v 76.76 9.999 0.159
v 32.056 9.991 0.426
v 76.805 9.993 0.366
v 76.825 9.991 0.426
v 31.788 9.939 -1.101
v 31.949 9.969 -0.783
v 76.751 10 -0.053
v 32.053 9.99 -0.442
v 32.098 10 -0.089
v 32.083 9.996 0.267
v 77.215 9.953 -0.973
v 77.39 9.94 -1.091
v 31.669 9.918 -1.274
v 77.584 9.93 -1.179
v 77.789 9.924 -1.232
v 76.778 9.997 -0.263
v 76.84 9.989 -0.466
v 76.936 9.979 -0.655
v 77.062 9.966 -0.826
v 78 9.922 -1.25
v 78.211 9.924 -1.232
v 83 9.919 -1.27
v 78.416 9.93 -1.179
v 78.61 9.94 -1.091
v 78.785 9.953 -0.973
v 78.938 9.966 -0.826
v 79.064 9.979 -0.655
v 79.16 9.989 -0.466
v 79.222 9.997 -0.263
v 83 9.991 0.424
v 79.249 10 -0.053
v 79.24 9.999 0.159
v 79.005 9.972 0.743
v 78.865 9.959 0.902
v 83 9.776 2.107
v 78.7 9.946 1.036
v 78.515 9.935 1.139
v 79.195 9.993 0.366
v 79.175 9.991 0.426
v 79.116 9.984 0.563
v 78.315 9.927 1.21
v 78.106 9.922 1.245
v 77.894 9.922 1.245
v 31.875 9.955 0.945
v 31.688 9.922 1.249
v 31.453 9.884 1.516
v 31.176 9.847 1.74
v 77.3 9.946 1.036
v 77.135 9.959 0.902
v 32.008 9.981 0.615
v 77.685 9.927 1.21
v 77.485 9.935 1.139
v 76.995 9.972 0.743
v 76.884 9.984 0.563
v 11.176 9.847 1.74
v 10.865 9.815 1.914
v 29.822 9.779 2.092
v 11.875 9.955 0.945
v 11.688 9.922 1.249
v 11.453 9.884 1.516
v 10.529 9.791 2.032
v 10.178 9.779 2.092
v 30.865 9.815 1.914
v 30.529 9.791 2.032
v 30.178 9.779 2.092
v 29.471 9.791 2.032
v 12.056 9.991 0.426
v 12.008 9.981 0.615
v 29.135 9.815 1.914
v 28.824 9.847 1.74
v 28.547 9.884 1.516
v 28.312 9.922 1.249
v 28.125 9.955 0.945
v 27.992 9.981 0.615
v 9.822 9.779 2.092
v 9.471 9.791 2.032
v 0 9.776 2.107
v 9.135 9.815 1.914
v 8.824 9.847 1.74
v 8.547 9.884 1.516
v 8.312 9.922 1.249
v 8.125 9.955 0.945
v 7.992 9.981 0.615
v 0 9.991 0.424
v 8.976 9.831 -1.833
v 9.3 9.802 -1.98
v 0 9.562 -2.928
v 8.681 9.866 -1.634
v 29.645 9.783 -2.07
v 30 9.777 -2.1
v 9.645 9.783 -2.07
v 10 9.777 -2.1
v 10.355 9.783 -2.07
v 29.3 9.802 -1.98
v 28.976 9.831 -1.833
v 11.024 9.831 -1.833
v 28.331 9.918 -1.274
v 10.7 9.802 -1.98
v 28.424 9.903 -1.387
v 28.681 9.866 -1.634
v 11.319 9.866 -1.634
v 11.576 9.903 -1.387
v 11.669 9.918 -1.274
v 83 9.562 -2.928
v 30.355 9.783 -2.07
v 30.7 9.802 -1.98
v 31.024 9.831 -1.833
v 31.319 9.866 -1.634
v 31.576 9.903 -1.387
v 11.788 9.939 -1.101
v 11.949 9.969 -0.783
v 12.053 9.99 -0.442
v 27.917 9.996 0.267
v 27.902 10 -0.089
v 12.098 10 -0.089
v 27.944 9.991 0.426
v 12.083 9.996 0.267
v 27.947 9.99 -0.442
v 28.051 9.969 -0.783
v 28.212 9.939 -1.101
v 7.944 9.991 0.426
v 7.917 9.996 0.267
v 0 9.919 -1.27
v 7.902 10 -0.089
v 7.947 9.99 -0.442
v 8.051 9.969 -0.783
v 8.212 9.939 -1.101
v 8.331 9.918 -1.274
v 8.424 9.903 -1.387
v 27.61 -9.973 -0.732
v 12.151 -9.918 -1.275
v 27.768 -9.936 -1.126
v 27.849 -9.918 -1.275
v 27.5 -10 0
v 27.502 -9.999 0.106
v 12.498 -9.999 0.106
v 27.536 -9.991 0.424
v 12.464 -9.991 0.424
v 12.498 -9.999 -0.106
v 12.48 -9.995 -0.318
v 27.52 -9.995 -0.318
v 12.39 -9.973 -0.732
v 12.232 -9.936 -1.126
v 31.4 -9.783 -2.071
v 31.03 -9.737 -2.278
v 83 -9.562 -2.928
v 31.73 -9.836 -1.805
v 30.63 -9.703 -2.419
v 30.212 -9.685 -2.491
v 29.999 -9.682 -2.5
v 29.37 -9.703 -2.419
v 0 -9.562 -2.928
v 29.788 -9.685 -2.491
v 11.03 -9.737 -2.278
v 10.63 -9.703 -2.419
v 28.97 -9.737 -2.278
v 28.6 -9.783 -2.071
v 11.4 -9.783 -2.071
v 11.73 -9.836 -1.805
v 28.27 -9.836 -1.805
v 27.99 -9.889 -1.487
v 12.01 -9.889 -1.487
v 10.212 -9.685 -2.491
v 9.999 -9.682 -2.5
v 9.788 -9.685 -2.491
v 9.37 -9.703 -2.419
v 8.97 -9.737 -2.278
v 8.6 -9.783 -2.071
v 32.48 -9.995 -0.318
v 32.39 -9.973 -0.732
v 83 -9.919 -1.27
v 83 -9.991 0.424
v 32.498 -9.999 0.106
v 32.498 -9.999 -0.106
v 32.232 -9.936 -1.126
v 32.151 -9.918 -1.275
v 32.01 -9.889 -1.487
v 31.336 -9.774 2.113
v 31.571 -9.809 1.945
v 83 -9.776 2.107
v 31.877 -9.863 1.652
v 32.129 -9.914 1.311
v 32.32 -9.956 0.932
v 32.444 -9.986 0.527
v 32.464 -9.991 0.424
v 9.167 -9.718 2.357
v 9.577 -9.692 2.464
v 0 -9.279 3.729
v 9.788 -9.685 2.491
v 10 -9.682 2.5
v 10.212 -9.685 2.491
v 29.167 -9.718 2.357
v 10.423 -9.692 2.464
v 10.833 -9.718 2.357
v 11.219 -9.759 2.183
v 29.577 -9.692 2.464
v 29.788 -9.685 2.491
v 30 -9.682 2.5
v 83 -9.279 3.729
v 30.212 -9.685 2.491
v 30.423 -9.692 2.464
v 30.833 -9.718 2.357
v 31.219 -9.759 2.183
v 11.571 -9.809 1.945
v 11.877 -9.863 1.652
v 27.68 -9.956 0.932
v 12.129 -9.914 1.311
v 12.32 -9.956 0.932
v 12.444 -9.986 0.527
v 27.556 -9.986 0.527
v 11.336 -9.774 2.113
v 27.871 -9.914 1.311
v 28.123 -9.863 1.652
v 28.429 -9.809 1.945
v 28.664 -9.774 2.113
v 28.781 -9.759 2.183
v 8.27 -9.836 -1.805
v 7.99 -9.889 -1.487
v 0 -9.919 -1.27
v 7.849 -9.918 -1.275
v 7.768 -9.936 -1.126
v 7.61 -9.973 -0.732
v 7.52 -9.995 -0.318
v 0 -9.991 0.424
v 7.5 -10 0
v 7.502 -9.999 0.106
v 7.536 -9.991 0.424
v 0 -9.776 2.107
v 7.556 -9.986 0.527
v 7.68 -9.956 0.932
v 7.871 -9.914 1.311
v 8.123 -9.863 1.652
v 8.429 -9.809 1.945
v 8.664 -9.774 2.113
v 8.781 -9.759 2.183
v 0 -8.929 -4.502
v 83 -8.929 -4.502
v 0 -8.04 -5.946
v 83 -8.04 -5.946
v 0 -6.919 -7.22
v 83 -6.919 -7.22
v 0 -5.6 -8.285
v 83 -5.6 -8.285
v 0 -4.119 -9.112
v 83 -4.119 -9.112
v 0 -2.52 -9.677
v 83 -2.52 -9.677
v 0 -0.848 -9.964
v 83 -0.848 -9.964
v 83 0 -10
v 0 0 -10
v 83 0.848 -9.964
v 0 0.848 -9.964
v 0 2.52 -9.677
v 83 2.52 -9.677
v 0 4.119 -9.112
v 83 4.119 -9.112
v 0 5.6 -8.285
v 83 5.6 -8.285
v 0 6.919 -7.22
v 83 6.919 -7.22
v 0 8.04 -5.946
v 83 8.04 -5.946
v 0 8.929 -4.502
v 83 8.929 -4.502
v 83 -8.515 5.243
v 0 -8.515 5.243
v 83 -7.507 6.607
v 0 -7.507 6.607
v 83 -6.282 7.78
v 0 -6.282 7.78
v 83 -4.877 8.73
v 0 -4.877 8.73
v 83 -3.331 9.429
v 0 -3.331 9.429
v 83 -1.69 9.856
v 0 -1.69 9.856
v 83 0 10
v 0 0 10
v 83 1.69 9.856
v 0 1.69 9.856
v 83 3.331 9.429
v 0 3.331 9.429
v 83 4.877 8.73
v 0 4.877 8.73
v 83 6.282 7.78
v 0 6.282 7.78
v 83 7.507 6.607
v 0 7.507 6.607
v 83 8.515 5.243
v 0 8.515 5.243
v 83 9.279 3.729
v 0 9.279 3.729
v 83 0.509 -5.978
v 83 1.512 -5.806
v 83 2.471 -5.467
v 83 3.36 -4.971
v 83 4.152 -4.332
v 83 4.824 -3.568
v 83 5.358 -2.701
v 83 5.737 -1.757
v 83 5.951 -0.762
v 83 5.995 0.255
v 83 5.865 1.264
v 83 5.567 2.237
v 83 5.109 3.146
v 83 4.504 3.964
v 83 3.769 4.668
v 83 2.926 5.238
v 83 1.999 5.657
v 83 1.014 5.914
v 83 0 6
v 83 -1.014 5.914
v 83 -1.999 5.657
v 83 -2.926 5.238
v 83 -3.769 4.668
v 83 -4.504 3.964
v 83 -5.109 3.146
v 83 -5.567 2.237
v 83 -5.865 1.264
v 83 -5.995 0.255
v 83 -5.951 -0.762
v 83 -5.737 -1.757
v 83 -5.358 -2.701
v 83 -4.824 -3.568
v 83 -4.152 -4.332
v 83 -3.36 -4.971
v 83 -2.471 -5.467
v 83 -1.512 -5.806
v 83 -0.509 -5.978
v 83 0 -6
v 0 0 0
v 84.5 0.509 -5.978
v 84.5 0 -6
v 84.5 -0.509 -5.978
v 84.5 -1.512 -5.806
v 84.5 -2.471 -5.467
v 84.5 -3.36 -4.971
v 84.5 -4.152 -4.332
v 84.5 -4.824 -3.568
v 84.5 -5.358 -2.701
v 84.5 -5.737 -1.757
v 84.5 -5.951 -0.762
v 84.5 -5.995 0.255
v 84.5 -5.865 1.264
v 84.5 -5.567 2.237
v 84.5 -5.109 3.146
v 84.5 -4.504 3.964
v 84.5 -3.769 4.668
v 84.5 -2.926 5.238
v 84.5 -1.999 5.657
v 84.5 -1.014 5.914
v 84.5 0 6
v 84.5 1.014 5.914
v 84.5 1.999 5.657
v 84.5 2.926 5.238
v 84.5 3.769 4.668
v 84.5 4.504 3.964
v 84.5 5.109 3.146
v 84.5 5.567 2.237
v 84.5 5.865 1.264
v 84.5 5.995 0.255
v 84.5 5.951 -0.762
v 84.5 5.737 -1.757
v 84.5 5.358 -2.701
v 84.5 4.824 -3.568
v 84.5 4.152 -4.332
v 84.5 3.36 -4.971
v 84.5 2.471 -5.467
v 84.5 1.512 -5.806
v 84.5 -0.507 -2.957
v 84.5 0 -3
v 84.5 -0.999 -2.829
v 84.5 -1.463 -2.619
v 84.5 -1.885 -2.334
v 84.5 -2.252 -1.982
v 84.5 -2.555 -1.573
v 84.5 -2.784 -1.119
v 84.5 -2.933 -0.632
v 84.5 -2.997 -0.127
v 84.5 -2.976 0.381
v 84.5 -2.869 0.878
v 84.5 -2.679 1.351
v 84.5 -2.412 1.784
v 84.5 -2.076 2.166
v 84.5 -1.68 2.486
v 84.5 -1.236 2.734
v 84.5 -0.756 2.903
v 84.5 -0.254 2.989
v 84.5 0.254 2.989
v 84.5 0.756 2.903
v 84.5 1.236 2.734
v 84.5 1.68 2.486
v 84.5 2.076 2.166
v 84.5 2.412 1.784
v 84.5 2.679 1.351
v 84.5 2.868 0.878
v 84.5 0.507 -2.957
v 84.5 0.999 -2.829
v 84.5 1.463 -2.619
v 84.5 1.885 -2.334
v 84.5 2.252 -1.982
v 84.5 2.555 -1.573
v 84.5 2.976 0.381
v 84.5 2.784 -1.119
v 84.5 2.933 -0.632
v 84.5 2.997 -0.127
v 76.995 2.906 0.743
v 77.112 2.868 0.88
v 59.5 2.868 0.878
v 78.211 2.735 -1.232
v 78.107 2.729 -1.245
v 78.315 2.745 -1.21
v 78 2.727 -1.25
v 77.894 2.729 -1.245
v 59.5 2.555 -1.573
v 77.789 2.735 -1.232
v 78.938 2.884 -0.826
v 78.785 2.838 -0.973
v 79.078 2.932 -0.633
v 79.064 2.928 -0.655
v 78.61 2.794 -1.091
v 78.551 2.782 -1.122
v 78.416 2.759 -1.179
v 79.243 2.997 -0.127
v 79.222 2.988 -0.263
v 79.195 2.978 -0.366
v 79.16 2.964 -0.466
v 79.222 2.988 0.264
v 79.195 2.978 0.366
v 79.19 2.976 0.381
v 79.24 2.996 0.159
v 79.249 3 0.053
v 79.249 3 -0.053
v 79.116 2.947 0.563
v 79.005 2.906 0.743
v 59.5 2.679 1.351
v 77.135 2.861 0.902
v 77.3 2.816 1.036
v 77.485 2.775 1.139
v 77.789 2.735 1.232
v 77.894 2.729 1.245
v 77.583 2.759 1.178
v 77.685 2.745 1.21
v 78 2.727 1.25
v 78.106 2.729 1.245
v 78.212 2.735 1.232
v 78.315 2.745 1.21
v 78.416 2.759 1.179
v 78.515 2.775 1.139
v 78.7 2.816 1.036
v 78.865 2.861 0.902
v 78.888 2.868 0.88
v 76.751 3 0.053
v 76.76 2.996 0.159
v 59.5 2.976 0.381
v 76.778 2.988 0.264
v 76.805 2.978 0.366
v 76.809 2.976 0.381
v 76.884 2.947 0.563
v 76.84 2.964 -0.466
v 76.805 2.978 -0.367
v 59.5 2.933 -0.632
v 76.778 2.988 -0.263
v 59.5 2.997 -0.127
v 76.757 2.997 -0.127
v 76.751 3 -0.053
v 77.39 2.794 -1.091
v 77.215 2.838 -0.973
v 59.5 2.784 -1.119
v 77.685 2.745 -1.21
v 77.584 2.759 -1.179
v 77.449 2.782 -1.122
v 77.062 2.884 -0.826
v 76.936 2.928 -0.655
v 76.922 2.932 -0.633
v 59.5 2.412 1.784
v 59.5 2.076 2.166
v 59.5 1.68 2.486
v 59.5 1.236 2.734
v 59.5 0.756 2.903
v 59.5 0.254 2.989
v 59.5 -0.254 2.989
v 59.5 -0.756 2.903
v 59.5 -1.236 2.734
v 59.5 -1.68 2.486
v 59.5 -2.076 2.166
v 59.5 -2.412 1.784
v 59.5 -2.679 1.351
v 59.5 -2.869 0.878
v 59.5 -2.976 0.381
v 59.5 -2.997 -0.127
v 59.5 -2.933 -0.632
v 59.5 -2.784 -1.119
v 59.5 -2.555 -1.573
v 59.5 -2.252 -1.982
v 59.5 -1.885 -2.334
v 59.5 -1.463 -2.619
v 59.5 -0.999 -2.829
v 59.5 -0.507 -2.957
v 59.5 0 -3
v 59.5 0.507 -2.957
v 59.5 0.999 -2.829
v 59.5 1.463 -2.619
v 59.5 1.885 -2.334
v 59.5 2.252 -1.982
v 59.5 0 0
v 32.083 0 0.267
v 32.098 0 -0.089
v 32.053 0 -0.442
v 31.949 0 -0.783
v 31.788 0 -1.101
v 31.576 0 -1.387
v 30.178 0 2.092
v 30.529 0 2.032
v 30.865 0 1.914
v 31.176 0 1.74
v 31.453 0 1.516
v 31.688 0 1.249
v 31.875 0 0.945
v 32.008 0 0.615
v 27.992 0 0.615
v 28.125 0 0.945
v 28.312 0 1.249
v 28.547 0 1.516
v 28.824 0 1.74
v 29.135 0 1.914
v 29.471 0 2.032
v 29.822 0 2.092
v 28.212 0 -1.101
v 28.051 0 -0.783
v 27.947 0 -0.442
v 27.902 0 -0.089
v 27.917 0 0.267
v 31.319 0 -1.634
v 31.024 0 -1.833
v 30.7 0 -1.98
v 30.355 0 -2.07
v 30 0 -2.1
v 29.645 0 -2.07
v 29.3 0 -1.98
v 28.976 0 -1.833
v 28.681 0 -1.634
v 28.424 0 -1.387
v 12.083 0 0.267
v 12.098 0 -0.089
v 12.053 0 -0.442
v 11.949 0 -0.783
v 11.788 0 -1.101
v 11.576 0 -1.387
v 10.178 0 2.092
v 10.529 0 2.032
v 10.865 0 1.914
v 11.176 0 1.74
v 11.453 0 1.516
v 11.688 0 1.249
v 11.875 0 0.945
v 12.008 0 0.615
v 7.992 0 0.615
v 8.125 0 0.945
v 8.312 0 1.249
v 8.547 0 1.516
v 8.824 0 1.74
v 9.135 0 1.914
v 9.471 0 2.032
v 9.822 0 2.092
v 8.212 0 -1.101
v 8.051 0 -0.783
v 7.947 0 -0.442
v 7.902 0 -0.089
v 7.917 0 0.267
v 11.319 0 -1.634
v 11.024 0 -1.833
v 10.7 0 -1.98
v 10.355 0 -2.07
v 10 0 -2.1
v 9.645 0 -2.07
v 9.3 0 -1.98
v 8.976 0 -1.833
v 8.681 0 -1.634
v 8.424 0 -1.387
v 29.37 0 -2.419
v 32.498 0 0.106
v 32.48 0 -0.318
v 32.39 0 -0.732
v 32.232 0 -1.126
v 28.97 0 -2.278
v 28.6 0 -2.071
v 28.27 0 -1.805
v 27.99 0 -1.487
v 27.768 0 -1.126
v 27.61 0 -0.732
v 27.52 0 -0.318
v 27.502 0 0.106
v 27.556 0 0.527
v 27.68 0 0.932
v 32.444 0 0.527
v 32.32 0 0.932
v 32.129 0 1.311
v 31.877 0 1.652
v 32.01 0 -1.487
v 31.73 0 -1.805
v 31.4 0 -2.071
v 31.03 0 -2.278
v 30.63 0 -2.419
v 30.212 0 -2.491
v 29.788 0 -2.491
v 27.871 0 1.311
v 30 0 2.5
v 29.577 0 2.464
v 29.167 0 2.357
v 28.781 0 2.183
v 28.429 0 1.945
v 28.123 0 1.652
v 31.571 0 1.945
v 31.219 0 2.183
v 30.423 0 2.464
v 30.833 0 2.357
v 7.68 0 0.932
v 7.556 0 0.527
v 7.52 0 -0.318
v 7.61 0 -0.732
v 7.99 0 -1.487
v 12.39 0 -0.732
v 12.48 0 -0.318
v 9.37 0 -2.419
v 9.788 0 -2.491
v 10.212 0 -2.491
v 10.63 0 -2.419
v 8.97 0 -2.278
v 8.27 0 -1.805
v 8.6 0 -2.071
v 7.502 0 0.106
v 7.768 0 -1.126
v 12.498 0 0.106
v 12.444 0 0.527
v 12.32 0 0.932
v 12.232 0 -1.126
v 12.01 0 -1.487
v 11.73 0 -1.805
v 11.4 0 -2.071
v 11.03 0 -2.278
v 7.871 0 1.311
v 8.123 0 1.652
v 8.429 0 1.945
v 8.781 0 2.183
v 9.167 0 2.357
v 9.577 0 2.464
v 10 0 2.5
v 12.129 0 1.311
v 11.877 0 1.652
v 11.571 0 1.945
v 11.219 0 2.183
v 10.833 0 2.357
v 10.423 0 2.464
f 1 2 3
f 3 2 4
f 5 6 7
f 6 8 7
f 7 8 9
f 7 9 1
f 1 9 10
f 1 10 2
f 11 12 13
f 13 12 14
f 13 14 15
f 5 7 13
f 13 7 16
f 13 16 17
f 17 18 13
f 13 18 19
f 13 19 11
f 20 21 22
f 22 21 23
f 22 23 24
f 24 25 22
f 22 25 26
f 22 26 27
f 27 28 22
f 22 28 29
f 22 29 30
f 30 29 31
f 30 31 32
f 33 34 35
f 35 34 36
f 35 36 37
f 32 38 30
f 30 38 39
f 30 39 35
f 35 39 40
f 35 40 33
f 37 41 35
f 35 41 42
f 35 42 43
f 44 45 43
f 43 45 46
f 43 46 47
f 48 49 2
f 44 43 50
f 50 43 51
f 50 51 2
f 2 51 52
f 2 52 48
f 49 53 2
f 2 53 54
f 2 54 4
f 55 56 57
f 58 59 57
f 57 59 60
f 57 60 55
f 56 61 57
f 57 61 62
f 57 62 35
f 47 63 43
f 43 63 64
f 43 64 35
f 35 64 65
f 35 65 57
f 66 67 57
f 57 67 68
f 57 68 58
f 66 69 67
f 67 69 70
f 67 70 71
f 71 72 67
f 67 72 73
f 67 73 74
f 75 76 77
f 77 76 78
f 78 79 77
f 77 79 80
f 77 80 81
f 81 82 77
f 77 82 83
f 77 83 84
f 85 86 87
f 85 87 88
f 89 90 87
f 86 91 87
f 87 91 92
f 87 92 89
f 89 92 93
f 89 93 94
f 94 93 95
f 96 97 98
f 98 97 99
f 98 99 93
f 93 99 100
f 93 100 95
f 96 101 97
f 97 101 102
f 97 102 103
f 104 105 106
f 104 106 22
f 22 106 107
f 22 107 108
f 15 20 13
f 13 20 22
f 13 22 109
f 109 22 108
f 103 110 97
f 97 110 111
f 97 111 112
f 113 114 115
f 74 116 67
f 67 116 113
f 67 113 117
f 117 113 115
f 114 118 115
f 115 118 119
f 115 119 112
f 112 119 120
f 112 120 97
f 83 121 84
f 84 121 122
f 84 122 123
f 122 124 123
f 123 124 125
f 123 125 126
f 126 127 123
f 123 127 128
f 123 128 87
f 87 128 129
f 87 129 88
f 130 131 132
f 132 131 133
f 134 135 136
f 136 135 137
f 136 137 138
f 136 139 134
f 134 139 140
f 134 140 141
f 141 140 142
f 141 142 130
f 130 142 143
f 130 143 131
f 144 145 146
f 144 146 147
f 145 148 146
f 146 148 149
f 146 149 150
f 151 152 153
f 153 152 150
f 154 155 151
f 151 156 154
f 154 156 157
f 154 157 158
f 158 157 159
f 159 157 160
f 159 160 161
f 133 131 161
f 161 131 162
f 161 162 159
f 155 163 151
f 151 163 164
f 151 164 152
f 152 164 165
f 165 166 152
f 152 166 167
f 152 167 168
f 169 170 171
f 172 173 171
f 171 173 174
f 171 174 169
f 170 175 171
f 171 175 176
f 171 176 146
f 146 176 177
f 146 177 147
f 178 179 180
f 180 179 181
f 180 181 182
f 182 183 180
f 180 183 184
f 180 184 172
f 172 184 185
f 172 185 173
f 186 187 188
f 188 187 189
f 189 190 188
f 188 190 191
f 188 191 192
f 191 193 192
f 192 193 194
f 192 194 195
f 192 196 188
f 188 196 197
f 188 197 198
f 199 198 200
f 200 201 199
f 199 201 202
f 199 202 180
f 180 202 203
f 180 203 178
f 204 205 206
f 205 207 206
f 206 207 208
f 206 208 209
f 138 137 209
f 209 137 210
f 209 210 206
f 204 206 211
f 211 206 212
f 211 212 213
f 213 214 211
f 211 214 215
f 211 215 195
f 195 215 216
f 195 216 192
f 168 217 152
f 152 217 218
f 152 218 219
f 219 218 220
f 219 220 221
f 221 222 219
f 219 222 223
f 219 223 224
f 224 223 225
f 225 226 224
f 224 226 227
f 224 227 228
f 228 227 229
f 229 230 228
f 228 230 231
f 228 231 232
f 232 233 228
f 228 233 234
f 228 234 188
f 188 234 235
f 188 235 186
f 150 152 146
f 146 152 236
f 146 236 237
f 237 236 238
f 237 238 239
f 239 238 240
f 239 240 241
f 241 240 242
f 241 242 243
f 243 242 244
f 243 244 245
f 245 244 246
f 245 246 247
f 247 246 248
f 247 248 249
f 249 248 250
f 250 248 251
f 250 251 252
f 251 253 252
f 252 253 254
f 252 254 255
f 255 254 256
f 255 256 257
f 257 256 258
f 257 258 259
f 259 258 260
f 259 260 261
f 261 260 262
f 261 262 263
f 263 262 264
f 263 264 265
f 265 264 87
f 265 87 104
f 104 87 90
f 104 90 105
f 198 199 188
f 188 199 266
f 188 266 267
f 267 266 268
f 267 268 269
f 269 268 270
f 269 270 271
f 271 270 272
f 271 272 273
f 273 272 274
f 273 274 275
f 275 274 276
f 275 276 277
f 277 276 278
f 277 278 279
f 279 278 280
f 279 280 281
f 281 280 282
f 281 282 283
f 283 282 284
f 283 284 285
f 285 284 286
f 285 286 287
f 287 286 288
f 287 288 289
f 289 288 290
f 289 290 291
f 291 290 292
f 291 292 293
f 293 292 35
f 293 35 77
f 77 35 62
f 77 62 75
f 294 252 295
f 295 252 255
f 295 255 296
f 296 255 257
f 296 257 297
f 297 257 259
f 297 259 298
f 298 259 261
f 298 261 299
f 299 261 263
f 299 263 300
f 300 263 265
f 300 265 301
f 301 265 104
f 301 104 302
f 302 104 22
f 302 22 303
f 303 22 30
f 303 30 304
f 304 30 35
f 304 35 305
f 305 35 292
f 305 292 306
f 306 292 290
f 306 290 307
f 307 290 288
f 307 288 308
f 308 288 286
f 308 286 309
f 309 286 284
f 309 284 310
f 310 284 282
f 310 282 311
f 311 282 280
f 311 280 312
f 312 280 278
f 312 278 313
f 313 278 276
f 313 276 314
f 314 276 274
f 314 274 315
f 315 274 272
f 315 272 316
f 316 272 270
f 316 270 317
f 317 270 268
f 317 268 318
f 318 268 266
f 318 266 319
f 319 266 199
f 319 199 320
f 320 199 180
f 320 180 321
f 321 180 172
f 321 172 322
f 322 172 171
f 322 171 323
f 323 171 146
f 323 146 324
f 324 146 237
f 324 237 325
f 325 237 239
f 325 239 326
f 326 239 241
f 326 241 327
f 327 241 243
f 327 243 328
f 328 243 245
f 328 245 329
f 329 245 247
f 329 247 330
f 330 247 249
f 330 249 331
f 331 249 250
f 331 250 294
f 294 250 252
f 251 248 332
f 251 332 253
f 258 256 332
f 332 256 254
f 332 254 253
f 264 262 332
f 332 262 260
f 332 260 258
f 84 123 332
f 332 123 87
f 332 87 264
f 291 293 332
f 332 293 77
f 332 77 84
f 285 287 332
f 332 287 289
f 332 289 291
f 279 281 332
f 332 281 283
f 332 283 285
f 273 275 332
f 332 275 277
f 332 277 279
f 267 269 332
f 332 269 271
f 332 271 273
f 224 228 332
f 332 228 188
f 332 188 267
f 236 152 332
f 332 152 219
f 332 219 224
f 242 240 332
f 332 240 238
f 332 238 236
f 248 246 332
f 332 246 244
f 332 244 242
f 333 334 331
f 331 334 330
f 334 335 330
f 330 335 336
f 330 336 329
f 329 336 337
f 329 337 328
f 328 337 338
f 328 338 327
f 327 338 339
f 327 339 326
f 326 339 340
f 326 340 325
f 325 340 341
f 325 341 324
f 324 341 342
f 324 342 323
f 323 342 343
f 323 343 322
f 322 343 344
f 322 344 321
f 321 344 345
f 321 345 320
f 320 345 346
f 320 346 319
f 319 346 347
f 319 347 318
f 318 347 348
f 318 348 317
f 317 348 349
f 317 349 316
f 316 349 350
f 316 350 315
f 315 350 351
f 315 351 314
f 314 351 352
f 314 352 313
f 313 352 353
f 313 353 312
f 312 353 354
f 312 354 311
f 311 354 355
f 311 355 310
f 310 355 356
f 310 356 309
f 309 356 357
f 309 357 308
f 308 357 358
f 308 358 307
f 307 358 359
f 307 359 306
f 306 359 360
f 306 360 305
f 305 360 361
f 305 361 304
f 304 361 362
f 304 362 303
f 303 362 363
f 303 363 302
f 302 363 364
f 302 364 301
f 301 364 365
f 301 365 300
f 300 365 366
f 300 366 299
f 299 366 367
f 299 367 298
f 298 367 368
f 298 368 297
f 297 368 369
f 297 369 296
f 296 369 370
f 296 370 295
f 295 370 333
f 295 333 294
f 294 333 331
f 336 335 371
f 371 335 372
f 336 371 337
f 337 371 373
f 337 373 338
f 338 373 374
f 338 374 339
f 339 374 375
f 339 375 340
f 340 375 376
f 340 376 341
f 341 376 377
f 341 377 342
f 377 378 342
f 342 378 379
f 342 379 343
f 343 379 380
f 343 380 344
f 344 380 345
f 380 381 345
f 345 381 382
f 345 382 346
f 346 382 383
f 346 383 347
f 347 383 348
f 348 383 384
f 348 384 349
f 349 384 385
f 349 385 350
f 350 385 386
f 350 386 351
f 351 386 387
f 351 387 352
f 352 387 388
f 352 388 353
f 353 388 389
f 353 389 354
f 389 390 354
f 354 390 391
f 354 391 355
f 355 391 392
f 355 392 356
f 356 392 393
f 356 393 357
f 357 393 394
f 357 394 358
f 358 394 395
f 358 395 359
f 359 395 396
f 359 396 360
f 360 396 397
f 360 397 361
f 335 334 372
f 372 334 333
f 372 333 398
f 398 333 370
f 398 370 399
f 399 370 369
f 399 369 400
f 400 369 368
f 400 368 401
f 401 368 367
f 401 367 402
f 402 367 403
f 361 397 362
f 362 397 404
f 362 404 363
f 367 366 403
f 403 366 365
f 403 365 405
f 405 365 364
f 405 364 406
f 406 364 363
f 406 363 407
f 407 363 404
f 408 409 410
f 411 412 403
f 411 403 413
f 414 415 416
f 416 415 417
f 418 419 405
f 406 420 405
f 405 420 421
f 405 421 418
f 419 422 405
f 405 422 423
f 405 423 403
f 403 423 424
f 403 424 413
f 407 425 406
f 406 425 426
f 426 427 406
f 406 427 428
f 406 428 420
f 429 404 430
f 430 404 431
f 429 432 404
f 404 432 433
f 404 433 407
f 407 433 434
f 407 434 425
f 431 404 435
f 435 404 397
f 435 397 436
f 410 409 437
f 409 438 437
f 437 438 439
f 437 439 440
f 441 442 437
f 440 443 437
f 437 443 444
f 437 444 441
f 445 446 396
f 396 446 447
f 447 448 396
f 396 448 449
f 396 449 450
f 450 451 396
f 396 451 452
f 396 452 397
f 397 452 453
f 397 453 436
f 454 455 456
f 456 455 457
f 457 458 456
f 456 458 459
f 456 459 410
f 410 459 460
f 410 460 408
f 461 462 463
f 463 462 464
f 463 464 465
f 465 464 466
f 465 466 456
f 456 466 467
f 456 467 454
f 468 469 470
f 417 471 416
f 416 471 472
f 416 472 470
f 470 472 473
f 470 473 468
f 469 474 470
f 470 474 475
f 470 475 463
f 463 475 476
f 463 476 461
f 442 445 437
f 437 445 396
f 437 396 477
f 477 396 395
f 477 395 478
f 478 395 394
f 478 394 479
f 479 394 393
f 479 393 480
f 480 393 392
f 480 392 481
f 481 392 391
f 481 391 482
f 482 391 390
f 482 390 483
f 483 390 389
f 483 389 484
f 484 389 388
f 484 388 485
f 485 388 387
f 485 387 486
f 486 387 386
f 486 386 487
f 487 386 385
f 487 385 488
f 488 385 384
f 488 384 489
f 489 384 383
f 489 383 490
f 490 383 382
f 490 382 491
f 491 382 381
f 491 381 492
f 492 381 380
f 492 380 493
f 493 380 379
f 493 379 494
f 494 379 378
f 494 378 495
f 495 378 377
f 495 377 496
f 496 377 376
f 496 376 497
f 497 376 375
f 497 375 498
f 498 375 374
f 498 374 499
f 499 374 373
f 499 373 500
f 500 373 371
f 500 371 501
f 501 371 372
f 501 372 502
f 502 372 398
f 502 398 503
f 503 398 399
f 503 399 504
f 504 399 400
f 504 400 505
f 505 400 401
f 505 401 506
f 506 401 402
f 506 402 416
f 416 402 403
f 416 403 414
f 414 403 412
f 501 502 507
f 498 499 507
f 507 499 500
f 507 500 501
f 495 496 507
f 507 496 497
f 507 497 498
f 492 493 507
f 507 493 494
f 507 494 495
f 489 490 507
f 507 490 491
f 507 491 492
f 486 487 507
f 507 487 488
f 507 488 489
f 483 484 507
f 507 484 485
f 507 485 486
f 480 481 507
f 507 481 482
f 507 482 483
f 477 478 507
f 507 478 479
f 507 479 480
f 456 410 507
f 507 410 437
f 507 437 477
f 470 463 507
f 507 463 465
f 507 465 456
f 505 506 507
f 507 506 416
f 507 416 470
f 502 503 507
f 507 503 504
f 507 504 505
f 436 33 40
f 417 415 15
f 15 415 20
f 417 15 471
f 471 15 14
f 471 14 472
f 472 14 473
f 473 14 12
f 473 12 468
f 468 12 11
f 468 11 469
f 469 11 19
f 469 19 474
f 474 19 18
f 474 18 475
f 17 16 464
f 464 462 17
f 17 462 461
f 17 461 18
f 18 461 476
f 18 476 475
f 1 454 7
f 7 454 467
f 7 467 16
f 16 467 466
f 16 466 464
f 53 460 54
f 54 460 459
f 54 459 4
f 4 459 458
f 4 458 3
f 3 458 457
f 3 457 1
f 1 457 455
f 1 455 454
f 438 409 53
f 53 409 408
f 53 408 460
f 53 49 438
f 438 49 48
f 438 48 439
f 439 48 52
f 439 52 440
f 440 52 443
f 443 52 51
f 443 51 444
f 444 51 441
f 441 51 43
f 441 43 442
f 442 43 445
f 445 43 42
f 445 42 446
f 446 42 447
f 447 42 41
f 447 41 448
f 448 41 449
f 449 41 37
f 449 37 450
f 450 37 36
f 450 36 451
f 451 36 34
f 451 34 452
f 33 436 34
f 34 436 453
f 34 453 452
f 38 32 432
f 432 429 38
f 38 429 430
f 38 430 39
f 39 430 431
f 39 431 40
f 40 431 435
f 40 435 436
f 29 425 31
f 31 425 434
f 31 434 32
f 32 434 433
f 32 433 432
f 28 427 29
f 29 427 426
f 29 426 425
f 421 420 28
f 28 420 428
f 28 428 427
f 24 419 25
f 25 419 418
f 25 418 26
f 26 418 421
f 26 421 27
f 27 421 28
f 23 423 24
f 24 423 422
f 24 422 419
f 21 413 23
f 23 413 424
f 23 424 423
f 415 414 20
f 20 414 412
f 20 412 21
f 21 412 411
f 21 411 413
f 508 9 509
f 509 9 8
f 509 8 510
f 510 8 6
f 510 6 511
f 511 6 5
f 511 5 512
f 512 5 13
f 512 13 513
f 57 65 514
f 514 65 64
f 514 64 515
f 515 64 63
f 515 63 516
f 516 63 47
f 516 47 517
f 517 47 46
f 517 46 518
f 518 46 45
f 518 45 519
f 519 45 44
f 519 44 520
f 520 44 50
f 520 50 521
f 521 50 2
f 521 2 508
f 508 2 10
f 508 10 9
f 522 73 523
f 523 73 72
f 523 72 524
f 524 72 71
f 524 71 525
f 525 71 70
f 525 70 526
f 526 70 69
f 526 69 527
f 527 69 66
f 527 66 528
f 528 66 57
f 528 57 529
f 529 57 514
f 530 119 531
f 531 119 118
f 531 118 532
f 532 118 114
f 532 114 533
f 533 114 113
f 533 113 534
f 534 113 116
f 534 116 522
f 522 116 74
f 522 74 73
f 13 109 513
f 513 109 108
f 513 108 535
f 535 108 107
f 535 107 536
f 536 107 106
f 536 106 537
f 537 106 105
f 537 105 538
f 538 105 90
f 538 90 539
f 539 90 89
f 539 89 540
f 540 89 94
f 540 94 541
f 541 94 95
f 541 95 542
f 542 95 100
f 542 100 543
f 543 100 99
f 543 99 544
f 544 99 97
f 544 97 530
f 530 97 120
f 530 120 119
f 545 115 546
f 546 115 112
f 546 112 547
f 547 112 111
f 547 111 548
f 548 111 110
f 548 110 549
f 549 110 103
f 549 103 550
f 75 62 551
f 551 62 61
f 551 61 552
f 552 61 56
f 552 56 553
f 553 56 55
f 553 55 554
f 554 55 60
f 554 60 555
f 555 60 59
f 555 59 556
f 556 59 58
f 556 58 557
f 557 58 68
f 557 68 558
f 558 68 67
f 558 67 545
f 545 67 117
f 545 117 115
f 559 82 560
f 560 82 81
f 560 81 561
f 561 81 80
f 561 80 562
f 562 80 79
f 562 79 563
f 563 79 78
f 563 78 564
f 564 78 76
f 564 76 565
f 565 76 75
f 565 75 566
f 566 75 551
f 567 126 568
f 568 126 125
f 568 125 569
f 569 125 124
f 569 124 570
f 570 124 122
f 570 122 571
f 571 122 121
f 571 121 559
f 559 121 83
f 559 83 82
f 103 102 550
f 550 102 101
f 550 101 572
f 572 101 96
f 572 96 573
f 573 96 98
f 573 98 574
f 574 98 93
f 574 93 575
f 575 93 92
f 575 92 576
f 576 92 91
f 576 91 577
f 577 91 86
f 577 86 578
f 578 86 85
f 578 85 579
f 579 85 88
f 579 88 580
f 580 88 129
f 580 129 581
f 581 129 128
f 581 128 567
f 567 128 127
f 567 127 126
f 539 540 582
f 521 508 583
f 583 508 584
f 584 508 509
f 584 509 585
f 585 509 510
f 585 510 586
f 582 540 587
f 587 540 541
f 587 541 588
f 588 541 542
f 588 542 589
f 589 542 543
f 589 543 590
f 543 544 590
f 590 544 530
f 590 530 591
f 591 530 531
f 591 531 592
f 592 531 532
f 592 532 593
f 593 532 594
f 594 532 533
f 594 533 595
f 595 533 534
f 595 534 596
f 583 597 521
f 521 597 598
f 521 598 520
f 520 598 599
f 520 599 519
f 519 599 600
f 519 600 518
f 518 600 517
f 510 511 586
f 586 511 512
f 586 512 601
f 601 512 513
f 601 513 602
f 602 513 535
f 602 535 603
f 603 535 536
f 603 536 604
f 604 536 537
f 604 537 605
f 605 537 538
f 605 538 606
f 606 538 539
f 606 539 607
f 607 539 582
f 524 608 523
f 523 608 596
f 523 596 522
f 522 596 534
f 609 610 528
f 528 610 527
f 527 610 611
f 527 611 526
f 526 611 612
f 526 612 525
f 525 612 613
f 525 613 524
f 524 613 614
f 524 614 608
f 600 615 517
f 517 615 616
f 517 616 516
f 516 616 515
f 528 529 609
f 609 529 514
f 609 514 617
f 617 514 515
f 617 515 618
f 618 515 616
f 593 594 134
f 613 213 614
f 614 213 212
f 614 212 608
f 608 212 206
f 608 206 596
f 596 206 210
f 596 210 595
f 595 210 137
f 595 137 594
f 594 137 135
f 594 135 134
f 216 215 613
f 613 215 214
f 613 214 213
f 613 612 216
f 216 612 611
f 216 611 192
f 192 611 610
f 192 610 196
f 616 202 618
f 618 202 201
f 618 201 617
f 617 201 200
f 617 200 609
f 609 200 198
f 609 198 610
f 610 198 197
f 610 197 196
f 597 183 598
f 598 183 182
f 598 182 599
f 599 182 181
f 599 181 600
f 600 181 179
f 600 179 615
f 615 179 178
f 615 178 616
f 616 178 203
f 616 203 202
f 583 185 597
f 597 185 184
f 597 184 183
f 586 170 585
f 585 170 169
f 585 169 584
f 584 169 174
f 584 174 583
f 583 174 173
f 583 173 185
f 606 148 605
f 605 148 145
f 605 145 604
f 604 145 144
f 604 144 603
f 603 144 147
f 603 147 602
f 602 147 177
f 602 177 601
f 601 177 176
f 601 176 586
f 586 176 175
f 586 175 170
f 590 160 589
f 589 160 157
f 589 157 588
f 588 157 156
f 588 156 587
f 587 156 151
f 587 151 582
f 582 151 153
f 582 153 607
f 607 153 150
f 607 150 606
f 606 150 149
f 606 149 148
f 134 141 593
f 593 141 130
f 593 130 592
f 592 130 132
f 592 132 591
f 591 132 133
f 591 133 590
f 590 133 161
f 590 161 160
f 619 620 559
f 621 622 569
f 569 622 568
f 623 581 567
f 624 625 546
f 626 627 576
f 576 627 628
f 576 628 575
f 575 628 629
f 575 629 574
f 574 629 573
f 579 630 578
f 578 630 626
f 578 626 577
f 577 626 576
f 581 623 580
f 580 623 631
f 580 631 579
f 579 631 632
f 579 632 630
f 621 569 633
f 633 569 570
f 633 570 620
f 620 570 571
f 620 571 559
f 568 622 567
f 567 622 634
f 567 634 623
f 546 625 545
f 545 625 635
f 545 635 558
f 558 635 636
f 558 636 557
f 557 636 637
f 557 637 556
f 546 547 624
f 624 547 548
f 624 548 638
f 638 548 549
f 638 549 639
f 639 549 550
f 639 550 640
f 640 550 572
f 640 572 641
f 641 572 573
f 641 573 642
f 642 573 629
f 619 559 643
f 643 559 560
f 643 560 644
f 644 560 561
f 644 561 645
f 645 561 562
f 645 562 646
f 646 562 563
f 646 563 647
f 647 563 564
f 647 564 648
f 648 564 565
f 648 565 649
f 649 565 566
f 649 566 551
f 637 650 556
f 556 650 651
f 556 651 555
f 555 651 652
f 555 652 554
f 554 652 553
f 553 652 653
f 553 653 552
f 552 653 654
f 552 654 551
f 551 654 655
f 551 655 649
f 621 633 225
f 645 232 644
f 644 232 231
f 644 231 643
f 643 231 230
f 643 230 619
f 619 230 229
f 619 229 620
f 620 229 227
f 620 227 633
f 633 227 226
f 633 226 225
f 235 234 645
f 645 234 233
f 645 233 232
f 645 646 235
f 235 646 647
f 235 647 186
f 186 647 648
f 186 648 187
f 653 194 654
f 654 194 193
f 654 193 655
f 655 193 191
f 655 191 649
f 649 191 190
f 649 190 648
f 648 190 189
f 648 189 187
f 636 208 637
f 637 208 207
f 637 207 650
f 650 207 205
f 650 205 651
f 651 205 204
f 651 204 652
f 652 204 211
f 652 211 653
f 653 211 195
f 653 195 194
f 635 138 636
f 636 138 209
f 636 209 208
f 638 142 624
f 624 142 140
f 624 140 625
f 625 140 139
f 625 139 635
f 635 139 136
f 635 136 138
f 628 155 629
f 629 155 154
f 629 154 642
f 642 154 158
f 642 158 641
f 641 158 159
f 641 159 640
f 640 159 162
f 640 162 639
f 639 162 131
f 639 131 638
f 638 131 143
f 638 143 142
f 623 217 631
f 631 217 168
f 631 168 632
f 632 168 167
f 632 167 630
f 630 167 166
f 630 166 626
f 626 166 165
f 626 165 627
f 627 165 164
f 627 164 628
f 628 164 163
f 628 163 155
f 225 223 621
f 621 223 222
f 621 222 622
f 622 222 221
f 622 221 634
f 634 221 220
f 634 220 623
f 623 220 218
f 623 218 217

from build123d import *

# Parameters (mm, degrees)
ESQUISSE1_R                = 10
BOSS_EXTRU_1_DEPTH         = 83
ESQUISSE2_R                = 6
BOSS_EXTRU_2_DEPTH         = 1.5
ESQUISSE5_R                = 3
ENL_V_MAT_EXTRU_2_DEPTH    = 25
ESQUISSE9_W                = 1.25
ESQUISSE9_H                = 10
ESQUISSE18_W               = 2.1
ESQUISSE18_H               = 10
TROU_TARAUD_M53_AT_2_COUNT = 2
TROU_TARAUD_M53_AT_2_PITCH = 20
ESQUISSE19_R               = 2.5
ENL_V_MAT_EXTRU_3_DEPTH    = 86.675259097


with BuildPart() as part:
    # Esquisse1 → Boss.-Extru.1 (new body)
    with BuildSketch(Plane(origin=(0, 0, 0), x_dir=(0, 0, -1), z_dir=(1, 0, 0))):
        Circle(ESQUISSE1_R)
    extrude(amount=BOSS_EXTRU_1_DEPTH)

    # Esquisse2 → Boss.-Extru.2 (add)
    with BuildSketch(Plane(origin=(83, 0, 0), x_dir=(0, 0, -1), z_dir=(1, 0, 0))):
        Circle(ESQUISSE2_R)
    extrude(amount=BOSS_EXTRU_2_DEPTH)

    # Esquisse5 → Enlèv. mat.-Extru.2 (cut)
    with BuildSketch(Plane(origin=(84.5, 0, 0), x_dir=(0, 0, -1), z_dir=(1, 0, 0))):
        Circle(ESQUISSE5_R)
    extrude(amount=-ENL_V_MAT_EXTRU_2_DEPTH, mode=Mode.SUBTRACT)

    # Esquisse9 → Trou taraudé M31 (revolve, cut)
    with BuildSketch(Plane(origin=(78, 0, 0), x_dir=(0, 0, -1), z_dir=(1, 0, 0))):
        with Locations((0.625, 5)):
            Rectangle(ESQUISSE9_W, ESQUISSE9_H)
    revolve(axis=Axis((78, -6.35, 0), (0, 1, 0)), mode=Mode.SUBTRACT)

    # Esquisse18 → Trou taraudé M53 (revolve, cut)
    with BuildSketch(Plane(origin=(10, 0, 0), x_dir=(0, 0, -1), z_dir=(1, 0, 0))):
        with Locations((1.05, 5)):
            Rectangle(ESQUISSE18_W, ESQUISSE18_H)
    trou_taraud_m53 = revolve(axis=Axis((10, -6.35, 0), (0, 1, 0)), mode=Mode.SUBTRACT)

    # Trou taraudé M53 at 2: Trou taraudé M53 ×2
    with Locations(*[(i * TROU_TARAUD_M53_AT_2_PITCH, 0, 0) for i in range(1, TROU_TARAUD_M53_AT_2_COUNT)]):
        add(trou_taraud_m53, mode=Mode.SUBTRACT)

    # Esquisse19 → Enlèv. mat.-Extru.3 (cut, through all)
    with BuildSketch(Plane(origin=(0, 0, 0), x_dir=(1, 0, 0), z_dir=(0, 1, 0))):
        with Locations(Location((10, 0, 0), (0, 0, 270))):
            Circle(ESQUISSE19_R)
        with Locations(Location((30, 0, 0), (0, 0, 270))):
            Circle(ESQUISSE19_R)
    extrude(amount=-ENL_V_MAT_EXTRU_3_DEPTH, mode=Mode.SUBTRACT)


solid = part.part
